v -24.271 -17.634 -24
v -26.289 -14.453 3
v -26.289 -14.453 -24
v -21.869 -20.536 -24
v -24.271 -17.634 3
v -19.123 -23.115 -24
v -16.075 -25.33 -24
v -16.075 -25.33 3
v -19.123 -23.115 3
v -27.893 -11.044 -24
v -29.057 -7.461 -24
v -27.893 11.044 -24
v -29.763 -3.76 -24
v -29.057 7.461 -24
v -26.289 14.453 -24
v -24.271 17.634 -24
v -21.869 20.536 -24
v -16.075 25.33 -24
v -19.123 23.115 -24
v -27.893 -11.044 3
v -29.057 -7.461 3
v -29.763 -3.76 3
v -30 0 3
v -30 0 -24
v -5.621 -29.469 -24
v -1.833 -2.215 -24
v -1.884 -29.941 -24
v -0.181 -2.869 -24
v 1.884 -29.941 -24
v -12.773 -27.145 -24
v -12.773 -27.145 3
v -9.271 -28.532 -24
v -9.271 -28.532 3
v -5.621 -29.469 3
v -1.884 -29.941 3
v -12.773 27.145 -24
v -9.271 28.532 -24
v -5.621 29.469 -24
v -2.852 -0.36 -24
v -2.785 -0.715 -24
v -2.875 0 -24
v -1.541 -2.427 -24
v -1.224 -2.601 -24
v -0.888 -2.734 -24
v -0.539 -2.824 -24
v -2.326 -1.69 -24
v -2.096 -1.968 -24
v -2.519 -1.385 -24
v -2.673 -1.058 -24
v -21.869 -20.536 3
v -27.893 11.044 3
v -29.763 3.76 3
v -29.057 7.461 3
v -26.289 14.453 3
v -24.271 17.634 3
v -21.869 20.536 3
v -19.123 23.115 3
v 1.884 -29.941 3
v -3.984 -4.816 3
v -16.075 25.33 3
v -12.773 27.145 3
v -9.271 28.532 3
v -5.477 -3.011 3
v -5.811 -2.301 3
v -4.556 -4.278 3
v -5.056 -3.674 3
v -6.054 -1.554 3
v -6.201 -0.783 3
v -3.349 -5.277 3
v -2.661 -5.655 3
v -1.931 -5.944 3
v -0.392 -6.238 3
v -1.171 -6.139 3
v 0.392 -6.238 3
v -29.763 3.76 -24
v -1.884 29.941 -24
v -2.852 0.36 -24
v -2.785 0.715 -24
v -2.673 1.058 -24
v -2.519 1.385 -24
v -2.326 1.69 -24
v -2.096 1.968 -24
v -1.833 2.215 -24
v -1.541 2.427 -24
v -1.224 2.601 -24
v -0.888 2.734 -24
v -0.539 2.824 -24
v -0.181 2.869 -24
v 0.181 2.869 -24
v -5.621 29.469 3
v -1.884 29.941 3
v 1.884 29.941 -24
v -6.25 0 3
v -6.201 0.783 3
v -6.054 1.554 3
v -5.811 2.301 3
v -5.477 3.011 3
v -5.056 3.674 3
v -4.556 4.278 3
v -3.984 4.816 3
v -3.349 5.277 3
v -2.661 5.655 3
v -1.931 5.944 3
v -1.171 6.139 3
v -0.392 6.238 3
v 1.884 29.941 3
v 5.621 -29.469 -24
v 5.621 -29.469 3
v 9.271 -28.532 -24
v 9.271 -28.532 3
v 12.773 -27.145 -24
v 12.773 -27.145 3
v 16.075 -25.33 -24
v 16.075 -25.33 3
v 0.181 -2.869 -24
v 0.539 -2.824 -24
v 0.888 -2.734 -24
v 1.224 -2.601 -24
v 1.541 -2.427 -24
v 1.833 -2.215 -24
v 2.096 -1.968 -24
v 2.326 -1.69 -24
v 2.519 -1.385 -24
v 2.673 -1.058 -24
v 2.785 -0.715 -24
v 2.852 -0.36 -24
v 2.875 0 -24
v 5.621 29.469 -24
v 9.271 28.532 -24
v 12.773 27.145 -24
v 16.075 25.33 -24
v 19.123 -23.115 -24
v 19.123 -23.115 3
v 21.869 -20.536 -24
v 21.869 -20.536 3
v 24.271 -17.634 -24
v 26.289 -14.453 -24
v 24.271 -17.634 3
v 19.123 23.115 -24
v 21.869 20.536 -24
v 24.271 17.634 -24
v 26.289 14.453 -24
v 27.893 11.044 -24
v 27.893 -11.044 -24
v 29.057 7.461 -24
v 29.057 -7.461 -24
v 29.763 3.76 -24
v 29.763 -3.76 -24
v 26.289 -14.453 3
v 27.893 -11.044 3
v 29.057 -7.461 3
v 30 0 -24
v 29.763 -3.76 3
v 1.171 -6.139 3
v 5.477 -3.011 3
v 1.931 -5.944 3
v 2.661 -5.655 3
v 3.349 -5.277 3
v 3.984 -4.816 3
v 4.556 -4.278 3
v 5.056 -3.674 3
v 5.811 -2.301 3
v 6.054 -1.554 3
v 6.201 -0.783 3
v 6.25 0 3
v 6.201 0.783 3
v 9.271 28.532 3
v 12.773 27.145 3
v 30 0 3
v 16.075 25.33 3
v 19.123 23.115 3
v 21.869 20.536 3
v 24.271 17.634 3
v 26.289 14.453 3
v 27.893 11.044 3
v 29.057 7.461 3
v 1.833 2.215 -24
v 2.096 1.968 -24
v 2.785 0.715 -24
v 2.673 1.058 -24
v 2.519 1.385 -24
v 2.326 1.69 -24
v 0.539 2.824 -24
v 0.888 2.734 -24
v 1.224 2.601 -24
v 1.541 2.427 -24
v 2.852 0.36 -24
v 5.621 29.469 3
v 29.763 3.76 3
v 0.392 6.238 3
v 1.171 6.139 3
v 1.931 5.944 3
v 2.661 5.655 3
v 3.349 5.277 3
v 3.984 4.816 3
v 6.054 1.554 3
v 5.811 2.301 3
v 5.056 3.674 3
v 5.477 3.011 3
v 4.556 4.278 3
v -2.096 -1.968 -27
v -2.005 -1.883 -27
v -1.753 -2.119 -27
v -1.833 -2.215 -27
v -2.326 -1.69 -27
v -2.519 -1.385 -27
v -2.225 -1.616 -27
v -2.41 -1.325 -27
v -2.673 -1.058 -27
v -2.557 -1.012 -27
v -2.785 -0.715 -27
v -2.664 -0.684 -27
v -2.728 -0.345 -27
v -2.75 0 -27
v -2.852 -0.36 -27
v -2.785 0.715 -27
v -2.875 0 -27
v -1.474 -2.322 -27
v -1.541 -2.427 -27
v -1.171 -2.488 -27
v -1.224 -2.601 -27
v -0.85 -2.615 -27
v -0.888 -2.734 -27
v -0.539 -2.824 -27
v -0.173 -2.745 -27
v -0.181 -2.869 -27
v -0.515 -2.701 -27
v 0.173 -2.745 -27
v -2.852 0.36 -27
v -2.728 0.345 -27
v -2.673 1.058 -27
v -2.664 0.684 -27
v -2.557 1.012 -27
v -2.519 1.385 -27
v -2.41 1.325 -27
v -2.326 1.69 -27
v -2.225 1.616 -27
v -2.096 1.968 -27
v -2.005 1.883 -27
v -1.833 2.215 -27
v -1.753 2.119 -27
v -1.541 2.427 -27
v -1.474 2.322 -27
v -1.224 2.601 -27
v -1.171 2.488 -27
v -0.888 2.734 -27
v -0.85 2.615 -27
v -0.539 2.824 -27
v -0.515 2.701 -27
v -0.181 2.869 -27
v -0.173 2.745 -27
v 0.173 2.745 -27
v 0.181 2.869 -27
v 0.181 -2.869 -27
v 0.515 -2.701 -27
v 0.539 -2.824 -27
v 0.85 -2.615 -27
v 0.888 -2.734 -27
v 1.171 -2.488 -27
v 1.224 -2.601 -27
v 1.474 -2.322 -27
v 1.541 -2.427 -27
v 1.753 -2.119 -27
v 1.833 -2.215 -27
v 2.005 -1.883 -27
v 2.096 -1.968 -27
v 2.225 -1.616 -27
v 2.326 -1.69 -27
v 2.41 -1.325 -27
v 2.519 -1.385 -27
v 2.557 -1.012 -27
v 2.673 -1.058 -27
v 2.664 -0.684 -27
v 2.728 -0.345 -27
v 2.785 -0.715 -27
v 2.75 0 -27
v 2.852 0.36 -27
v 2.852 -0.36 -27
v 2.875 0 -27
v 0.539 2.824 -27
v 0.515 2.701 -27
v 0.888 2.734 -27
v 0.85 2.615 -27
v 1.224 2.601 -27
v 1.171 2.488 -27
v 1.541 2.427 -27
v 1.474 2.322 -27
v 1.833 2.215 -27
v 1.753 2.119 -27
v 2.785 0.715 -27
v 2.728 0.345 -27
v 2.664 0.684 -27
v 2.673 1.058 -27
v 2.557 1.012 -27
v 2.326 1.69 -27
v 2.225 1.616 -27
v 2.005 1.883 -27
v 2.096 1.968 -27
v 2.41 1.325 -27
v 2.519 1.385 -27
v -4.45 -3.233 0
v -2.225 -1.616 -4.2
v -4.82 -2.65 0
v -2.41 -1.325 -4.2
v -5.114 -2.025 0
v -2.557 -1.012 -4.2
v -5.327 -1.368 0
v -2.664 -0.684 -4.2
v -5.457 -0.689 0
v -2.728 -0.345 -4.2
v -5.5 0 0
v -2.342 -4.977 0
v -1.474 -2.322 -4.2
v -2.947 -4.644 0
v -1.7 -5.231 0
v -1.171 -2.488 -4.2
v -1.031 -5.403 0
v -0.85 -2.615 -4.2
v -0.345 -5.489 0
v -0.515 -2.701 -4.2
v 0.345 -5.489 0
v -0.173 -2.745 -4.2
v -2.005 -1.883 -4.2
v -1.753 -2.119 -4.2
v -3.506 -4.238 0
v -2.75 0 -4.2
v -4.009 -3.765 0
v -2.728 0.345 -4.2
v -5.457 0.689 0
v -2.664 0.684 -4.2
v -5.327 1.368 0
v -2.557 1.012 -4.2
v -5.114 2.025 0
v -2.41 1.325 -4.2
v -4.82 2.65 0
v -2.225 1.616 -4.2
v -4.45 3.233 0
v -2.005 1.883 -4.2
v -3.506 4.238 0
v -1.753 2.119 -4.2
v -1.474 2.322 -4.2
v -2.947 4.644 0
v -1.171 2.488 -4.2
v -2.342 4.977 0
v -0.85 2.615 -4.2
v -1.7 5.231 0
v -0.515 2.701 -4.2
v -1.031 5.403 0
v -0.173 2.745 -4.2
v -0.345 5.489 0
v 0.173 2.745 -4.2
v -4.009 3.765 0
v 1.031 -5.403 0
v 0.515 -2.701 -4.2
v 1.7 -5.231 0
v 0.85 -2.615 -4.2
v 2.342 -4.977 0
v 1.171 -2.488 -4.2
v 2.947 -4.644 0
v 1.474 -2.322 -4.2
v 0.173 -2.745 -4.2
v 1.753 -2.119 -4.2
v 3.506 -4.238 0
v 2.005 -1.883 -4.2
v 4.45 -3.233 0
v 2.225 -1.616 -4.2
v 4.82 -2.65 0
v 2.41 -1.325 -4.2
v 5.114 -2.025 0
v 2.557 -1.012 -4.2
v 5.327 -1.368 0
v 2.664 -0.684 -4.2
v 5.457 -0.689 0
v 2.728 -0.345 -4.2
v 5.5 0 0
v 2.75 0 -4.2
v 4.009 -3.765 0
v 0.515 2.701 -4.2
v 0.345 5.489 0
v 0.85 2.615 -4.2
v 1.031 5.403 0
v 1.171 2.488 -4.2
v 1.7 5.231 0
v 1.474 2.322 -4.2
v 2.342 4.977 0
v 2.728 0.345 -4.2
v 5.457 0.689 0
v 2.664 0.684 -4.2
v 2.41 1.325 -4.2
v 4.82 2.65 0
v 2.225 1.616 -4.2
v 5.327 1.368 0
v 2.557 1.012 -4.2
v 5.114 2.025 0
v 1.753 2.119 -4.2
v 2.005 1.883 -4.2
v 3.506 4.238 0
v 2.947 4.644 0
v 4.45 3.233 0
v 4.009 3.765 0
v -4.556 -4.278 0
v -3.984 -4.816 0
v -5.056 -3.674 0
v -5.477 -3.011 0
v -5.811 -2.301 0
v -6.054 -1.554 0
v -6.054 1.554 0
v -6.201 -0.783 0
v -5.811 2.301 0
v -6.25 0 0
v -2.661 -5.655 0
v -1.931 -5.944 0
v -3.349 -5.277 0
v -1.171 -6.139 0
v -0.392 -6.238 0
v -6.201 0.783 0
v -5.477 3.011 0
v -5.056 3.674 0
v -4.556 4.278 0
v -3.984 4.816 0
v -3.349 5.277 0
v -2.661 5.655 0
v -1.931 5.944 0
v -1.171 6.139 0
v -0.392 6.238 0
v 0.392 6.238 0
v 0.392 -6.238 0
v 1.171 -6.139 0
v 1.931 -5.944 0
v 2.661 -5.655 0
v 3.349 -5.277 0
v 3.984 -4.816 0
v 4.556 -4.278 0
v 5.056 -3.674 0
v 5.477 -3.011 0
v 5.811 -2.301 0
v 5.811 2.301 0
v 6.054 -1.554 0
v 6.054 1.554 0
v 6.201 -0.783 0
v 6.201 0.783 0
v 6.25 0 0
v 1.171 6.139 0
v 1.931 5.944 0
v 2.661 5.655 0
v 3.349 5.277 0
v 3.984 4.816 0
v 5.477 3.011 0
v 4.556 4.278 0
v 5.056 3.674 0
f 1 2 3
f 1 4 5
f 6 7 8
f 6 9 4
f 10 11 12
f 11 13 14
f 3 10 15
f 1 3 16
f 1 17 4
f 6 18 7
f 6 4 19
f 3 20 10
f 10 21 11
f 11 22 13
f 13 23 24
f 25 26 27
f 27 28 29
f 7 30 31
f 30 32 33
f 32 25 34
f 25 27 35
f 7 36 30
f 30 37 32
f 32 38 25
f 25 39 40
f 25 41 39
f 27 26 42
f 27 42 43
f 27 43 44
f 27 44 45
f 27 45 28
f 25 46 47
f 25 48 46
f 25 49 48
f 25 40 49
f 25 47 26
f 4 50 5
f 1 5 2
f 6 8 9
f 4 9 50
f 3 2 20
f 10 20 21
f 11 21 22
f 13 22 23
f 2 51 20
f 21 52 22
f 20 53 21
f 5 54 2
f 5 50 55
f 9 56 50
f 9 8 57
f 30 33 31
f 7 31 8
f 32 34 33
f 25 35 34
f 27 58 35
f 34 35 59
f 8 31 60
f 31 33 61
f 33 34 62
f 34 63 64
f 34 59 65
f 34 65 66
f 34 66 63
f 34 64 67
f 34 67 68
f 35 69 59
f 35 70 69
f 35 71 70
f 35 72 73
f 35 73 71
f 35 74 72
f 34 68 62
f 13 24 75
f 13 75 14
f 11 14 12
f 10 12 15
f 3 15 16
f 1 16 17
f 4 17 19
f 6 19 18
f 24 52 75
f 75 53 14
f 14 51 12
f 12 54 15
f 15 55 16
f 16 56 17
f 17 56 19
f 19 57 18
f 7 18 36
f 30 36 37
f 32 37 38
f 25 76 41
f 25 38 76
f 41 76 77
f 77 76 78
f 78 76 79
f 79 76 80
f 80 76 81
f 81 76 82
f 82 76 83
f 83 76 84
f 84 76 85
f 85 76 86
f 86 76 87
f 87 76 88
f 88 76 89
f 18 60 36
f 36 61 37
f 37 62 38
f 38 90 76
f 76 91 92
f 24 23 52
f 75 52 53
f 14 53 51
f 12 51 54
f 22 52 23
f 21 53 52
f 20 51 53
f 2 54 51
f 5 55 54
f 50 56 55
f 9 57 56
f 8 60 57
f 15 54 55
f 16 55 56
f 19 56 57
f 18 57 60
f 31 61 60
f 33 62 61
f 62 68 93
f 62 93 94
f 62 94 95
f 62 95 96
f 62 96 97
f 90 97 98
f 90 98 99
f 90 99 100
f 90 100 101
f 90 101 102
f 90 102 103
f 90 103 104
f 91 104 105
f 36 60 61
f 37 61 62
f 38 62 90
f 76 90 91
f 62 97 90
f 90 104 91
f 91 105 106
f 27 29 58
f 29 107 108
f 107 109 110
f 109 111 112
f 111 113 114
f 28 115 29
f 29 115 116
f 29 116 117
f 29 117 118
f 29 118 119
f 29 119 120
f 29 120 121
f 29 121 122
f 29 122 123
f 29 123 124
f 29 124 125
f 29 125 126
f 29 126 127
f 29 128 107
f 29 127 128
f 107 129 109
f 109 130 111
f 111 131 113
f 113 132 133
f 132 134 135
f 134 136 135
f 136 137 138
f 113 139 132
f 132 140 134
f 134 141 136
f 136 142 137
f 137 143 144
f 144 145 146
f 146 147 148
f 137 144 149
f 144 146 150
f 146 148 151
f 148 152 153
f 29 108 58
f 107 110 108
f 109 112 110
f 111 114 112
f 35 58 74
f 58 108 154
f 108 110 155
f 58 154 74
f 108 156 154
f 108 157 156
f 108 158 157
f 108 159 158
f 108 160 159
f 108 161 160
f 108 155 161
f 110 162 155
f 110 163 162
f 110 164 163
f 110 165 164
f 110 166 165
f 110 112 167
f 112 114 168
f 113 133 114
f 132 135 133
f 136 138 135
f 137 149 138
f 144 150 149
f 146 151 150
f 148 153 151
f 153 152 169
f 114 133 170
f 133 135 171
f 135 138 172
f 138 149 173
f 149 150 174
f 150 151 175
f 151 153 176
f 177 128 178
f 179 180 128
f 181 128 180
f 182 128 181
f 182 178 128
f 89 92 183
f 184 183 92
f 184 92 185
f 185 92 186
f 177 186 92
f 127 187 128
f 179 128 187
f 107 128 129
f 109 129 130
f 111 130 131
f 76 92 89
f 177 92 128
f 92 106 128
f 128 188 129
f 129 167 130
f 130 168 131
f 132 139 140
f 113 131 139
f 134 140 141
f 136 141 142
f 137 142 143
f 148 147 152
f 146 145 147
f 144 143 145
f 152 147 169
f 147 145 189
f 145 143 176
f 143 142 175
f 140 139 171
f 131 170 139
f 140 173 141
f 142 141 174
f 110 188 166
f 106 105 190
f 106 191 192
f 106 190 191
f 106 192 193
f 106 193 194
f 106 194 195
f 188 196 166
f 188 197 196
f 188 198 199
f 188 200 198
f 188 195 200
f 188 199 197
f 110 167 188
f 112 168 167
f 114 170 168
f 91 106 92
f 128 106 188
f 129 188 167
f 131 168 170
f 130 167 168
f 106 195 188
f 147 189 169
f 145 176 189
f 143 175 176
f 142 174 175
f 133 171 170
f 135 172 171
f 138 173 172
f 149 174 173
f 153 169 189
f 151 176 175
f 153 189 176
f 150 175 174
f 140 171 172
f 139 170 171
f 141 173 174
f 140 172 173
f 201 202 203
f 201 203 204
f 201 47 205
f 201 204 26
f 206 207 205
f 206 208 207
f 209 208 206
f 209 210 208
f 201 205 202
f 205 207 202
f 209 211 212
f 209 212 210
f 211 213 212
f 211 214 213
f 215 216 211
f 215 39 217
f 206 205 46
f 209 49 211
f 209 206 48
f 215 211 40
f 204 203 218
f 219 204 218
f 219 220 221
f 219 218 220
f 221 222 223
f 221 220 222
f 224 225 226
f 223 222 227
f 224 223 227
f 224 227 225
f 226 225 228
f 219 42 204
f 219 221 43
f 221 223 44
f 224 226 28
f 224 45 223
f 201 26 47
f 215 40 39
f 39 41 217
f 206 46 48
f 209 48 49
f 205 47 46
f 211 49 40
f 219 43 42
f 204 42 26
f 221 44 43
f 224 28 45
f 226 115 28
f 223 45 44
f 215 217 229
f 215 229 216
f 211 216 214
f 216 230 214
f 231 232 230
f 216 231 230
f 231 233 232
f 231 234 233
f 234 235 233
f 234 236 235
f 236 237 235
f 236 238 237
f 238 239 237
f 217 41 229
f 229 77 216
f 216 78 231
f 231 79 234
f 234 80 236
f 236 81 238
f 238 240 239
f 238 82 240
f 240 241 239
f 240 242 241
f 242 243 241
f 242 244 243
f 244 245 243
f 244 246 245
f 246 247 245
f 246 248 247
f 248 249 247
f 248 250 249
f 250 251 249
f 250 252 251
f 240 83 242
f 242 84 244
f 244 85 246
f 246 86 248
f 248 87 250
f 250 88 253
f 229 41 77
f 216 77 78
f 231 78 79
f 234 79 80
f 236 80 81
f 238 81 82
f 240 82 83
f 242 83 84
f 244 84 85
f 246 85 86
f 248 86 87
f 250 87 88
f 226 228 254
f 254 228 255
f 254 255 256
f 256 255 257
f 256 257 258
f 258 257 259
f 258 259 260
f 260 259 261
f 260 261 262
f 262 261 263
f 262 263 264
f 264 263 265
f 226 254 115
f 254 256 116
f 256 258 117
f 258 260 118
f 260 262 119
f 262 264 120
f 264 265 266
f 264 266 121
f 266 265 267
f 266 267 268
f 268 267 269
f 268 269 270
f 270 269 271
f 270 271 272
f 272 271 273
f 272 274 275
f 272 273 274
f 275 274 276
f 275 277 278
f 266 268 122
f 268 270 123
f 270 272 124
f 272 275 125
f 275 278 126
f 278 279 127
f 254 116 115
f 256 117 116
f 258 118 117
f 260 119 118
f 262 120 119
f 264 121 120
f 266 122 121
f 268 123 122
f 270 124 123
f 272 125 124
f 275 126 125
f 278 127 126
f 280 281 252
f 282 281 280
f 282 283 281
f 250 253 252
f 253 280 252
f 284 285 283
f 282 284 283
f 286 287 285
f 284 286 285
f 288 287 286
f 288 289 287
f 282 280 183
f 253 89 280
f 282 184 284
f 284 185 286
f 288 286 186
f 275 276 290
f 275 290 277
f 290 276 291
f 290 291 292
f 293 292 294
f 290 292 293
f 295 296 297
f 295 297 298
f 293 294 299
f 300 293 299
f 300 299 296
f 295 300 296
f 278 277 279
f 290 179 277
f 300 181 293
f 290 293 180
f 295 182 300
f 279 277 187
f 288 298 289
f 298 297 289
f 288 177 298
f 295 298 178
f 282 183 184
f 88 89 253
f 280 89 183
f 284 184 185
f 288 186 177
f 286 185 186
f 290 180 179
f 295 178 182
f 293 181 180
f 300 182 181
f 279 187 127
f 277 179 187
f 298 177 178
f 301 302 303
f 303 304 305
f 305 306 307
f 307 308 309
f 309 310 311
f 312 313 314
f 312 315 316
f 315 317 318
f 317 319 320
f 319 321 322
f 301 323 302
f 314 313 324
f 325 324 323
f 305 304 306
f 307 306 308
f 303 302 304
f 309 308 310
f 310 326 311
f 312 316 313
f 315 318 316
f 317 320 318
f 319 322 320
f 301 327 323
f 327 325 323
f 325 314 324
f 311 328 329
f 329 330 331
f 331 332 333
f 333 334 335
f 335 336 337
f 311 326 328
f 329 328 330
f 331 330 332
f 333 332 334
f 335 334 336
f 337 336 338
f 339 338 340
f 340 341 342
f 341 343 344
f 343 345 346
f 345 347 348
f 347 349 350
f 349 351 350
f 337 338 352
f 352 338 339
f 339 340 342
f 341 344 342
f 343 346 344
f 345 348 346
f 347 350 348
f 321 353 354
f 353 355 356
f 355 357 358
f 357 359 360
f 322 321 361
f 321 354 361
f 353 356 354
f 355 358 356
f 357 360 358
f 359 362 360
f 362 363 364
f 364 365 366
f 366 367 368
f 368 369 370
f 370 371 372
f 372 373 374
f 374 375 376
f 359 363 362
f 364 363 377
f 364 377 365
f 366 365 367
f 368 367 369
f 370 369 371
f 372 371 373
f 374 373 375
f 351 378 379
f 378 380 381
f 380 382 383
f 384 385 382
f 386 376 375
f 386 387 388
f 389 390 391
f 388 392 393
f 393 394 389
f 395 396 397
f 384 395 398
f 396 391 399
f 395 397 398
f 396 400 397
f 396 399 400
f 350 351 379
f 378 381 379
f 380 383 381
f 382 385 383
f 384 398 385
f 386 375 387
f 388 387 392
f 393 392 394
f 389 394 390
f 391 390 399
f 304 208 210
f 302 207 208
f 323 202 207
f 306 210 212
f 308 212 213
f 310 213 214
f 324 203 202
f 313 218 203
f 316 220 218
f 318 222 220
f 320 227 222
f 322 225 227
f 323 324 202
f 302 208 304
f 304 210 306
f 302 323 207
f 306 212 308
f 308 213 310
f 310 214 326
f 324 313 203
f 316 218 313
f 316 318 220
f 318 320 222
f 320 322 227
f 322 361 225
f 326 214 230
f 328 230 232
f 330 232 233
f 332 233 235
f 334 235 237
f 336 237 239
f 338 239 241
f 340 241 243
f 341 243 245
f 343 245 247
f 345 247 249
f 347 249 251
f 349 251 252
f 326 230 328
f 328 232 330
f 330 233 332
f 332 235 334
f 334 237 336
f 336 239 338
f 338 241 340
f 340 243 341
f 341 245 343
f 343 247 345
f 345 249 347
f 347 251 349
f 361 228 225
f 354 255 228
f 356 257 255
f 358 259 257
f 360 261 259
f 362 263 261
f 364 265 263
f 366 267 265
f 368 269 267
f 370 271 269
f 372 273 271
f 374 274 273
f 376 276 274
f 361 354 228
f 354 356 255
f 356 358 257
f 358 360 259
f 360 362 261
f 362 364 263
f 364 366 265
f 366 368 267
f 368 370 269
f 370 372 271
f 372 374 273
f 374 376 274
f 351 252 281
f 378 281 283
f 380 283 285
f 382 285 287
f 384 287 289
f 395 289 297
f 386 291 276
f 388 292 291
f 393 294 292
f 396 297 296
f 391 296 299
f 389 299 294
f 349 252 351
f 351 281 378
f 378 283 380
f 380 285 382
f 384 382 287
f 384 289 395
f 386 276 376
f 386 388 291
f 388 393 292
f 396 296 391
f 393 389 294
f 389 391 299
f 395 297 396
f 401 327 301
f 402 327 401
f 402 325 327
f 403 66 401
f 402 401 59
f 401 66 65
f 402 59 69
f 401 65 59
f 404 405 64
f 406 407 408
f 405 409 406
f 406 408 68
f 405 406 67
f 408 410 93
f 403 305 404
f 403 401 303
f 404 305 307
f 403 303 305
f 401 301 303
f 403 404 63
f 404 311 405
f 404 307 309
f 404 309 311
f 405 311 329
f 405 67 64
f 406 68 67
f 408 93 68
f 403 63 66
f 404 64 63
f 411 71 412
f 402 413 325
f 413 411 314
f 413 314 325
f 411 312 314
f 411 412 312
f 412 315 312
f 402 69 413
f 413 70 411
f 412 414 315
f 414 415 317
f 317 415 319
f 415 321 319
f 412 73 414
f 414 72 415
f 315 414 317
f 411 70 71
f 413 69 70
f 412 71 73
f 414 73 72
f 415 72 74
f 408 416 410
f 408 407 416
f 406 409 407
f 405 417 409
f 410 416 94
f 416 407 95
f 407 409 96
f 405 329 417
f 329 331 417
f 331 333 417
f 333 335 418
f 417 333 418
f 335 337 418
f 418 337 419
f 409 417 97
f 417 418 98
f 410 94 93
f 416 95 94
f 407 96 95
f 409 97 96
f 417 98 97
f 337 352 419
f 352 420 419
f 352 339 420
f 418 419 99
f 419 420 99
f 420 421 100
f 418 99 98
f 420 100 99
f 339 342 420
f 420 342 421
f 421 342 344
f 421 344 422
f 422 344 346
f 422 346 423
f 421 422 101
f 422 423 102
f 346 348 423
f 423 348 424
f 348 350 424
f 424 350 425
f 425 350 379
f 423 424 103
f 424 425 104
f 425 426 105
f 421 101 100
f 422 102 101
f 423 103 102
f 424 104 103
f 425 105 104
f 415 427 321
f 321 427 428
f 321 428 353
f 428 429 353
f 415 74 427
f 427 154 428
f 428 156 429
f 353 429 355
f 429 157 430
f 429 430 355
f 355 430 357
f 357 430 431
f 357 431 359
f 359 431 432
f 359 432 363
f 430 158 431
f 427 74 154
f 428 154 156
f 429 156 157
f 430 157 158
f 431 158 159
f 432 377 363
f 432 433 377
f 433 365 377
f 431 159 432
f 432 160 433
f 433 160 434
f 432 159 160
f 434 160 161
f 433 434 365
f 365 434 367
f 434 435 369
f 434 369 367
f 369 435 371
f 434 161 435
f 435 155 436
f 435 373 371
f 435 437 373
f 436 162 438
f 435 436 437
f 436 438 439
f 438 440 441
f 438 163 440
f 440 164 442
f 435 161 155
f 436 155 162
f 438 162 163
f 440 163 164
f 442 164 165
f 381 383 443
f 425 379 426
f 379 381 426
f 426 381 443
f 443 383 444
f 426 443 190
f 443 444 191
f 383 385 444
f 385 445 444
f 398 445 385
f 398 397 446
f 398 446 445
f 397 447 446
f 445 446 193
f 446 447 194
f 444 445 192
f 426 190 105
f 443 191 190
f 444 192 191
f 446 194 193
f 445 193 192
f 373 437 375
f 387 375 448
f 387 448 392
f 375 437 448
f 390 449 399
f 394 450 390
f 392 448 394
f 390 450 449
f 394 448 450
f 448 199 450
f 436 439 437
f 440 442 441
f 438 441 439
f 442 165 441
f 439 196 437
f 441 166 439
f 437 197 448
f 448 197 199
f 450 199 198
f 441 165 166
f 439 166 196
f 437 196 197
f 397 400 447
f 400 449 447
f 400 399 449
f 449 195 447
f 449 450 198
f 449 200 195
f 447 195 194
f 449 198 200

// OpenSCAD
$fn = 50;

difference() {
	union() {
		translate(v = [0, 0, -24.0]) {
			cylinder(h = 27, r = 30.0);
		}
		#translate(v = [0, 0, -27.0]) {
			cylinder(h = 27, r = 2.875);
		}
	}
	union() {
		translate(v = [0, 0, 0]) {
			rotate(a = [0, 0, 0]) {
				difference() {
					union() {
						translate(v = [0, 0, -27.0]) {
							cylinder(h = 27, r = 2.25);
						}
						translate(v = [0, 0, -4.2]) {
							cylinder(h = 4.2, r1 = 2.75, r2 = 5.5);
						}
						translate(v = [0, 0, -27.0]) {
							cylinder(h = 27, r = 2.75);
						}
						translate(v = [0, 0, -27.0]) {
							cylinder(h = 27, r = 2.25);
						}
					}
					union();
				}
			}
		}
		#cylinder(h = 3, r = 6.25);
	}
}
